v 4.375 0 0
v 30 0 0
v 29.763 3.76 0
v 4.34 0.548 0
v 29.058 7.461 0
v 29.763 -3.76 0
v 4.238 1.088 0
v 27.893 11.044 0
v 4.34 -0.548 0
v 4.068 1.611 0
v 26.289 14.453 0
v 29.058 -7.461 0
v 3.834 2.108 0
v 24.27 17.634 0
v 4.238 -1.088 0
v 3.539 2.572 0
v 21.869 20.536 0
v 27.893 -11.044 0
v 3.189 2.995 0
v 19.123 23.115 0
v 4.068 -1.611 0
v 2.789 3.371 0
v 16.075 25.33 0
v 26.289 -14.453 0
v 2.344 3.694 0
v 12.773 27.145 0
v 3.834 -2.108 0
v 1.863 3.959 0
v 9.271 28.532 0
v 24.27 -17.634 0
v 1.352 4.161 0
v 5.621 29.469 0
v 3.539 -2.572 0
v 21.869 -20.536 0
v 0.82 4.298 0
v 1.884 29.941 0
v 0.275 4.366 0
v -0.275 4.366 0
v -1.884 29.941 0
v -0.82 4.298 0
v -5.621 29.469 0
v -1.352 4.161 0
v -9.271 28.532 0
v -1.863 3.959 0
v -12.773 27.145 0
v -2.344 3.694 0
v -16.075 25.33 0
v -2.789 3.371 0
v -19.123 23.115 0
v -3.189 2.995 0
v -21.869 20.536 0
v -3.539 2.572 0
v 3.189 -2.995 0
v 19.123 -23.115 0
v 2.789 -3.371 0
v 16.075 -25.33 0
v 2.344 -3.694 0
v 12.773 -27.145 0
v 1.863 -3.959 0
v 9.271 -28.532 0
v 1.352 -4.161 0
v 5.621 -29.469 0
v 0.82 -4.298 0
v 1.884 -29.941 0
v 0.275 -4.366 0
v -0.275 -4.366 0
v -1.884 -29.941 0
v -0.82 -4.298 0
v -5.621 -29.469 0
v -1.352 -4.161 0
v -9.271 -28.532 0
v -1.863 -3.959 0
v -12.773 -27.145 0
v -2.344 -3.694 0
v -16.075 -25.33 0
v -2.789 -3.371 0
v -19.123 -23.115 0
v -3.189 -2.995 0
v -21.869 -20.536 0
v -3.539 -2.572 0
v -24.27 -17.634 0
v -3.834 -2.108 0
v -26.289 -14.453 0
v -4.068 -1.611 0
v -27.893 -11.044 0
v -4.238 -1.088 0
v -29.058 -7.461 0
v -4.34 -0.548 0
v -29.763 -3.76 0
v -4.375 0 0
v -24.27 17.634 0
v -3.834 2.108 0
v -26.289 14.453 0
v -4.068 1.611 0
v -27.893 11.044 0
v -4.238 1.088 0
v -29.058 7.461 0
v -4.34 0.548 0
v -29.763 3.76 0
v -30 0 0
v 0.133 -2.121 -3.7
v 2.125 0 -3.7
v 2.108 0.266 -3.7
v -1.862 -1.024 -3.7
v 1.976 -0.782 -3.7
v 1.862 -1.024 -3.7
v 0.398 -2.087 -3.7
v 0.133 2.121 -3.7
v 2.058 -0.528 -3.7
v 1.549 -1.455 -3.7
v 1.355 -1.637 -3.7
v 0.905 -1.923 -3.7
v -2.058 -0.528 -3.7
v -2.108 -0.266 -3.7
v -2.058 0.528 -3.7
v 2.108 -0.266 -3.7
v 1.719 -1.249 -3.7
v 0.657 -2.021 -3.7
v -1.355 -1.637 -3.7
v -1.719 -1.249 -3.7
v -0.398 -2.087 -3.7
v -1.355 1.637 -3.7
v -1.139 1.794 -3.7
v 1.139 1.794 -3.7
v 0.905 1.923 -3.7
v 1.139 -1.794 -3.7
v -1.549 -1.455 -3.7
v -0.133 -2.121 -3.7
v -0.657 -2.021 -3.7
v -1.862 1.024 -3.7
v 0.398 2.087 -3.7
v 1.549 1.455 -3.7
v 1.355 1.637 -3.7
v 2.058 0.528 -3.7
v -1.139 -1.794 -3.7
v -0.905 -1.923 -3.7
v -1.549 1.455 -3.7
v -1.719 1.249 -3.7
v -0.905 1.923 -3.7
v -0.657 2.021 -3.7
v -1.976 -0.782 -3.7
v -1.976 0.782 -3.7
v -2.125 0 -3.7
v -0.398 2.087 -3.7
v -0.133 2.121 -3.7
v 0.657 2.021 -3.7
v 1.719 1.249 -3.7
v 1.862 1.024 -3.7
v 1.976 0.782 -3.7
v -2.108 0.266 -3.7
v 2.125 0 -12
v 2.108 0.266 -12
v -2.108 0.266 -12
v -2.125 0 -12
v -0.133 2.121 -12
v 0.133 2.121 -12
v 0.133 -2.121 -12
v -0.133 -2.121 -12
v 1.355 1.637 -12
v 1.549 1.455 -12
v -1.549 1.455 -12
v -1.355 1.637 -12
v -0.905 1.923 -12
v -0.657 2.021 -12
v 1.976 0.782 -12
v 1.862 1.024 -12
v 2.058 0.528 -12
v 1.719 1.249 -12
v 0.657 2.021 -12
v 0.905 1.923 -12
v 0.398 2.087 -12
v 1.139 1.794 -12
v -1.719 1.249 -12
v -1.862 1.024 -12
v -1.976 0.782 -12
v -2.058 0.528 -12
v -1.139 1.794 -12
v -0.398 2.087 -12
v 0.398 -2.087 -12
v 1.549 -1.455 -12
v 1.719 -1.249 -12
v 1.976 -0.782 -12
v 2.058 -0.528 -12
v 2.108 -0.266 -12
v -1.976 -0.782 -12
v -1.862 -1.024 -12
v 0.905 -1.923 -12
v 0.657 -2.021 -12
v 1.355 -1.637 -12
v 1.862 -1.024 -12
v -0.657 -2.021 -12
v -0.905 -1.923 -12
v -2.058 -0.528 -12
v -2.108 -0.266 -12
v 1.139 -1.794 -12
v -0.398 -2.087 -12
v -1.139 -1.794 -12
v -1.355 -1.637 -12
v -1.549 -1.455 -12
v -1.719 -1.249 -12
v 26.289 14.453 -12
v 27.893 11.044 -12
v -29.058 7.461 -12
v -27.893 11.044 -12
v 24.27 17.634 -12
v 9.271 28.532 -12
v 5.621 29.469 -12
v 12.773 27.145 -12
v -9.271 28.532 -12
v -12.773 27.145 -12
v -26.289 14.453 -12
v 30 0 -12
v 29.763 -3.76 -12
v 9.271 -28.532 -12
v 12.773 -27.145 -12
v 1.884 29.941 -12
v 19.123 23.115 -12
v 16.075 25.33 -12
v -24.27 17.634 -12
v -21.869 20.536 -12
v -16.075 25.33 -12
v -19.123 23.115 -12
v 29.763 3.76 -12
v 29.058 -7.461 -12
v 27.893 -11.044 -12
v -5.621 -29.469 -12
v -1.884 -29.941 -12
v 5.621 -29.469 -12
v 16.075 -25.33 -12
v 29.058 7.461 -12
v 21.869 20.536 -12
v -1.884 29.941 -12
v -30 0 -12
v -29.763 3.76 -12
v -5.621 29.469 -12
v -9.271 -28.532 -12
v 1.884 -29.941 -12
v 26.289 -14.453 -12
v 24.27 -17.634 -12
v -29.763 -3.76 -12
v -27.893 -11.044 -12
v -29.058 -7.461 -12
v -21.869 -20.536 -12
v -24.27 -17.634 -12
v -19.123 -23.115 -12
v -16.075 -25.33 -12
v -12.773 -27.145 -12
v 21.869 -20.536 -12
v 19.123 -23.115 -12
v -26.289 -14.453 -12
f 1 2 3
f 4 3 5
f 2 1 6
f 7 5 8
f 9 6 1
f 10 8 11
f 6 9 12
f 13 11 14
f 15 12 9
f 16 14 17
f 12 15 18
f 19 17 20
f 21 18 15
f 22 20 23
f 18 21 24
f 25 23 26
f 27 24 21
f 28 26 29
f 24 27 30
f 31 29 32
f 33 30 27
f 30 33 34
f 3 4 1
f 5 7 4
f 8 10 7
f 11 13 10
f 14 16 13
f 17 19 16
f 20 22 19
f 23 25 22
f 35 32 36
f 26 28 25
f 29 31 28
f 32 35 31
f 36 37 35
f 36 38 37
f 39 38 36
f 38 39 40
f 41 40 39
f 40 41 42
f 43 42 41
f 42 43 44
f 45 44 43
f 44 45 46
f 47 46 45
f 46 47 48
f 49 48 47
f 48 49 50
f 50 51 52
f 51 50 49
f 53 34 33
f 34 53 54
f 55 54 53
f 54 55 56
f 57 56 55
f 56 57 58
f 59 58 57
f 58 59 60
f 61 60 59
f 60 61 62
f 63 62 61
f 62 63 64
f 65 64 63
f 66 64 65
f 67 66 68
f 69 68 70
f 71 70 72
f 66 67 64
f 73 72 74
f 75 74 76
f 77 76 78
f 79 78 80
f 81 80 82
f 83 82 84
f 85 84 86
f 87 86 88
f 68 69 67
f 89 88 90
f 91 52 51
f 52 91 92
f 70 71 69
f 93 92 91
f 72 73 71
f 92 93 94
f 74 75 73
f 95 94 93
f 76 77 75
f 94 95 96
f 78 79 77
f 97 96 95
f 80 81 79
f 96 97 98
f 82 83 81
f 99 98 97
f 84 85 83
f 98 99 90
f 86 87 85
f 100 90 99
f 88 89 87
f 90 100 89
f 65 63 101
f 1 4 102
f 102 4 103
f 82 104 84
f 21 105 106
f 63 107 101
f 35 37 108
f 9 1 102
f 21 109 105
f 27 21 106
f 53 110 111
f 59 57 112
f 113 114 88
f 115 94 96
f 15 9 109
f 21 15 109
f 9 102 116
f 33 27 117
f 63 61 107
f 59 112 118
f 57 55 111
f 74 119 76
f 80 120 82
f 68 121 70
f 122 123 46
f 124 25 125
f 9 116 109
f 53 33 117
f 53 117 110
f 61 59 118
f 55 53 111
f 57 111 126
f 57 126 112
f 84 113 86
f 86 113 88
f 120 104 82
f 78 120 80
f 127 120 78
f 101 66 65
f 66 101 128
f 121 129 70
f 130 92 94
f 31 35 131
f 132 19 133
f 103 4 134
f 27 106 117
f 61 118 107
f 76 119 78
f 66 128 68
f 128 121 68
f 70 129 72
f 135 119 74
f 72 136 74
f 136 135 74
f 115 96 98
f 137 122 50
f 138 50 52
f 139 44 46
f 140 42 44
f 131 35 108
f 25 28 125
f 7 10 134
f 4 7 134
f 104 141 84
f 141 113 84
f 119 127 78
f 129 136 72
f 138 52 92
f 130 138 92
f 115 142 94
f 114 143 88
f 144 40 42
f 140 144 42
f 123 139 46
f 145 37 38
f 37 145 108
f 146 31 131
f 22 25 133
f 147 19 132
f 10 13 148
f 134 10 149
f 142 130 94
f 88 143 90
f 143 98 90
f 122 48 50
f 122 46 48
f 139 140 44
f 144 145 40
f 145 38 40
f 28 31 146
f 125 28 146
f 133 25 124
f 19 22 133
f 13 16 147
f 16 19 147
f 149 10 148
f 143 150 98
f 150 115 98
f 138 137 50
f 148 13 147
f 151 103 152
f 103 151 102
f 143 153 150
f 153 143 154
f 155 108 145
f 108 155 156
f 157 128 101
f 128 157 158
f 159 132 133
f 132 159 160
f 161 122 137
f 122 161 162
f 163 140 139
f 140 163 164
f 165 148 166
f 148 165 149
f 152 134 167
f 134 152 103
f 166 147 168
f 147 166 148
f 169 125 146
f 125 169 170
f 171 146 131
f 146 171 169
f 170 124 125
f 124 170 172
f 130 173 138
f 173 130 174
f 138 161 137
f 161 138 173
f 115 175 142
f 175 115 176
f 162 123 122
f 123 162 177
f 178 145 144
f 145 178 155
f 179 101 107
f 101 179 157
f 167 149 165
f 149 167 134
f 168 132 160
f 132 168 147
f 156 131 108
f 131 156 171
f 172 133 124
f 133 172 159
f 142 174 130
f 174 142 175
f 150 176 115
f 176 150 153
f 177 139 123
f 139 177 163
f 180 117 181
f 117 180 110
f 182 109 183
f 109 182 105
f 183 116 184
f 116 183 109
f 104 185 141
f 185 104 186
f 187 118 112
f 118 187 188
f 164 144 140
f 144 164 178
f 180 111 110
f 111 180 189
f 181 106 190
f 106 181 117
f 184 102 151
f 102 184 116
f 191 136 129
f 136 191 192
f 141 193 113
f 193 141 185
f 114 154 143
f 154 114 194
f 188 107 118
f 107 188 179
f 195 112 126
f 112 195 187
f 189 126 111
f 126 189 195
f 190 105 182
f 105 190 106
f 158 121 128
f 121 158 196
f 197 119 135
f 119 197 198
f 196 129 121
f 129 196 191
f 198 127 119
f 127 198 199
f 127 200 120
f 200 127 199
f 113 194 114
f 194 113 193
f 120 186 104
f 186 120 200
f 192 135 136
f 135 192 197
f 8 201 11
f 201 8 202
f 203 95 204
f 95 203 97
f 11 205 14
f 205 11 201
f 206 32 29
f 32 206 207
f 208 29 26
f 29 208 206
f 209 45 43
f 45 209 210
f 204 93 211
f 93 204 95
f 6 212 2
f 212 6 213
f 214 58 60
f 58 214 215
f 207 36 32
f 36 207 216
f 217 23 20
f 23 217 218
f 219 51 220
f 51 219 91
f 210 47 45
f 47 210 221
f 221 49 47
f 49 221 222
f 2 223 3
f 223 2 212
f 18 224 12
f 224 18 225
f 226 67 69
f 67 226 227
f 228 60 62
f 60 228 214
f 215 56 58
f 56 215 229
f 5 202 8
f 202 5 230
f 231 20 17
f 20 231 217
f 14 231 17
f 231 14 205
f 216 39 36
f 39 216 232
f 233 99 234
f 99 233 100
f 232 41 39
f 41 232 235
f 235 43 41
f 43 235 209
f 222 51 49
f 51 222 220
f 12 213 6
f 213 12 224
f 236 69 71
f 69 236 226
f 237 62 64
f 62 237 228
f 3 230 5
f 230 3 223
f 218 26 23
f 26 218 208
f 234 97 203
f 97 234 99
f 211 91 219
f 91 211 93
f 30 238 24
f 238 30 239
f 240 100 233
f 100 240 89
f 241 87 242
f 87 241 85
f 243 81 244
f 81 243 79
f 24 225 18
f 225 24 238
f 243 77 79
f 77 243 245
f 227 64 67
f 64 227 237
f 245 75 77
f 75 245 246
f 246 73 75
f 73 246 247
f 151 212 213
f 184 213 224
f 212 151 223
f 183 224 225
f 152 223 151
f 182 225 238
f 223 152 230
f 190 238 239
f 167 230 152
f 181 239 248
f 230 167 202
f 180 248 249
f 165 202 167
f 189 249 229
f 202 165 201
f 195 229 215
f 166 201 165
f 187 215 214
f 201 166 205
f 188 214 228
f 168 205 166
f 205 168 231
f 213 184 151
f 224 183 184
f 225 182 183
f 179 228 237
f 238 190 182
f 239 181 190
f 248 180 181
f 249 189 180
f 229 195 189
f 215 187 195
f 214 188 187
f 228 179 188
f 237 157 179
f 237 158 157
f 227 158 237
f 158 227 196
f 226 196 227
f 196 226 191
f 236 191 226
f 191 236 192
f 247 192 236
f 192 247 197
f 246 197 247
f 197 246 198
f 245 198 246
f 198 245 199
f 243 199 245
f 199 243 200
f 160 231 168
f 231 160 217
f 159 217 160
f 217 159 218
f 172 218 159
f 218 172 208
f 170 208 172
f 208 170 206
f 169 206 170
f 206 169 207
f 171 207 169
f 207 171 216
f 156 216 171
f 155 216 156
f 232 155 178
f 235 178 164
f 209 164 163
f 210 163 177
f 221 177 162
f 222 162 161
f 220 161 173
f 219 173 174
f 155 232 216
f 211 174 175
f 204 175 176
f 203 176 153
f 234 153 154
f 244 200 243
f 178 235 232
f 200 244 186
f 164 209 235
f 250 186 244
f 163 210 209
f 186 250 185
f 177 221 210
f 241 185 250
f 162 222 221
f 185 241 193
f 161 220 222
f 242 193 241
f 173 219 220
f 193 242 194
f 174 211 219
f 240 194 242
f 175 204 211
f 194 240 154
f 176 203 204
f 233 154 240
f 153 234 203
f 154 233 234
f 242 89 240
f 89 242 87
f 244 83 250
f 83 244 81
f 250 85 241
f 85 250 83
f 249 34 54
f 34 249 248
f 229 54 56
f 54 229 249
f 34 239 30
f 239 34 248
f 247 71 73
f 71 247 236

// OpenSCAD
$fn = 50;


difference() {
	union() {
		translate(v = [0, 0, -12.0000000000]) {
			cylinder(h = 12, r = 30.0000000000);
		}
	}
	union() {
		translate(v = [0, 0, 0]) {
			rotate(a = [0, 0, 0]) {
				difference() {
					union() {
						translate(v = [0, 0, -15.0000000000]) {
							cylinder(h = 15, r = 2.0000000000);
						}
						translate(v = [0, 0, -3.7000000000]) {
							cylinder(h = 3.7000000000, r1 = 2.1250000000, r2 = 4.3750000000);
						}
						translate(v = [0, 0, -15.0000000000]) {
							cylinder(h = 15, r = 2.1250000000);
						}
						translate(v = [0, 0, -15.0000000000]) {
							cylinder(h = 15, r = 2.0000000000);
						}
					}
					union();
				}
			}
		}
	}
}
